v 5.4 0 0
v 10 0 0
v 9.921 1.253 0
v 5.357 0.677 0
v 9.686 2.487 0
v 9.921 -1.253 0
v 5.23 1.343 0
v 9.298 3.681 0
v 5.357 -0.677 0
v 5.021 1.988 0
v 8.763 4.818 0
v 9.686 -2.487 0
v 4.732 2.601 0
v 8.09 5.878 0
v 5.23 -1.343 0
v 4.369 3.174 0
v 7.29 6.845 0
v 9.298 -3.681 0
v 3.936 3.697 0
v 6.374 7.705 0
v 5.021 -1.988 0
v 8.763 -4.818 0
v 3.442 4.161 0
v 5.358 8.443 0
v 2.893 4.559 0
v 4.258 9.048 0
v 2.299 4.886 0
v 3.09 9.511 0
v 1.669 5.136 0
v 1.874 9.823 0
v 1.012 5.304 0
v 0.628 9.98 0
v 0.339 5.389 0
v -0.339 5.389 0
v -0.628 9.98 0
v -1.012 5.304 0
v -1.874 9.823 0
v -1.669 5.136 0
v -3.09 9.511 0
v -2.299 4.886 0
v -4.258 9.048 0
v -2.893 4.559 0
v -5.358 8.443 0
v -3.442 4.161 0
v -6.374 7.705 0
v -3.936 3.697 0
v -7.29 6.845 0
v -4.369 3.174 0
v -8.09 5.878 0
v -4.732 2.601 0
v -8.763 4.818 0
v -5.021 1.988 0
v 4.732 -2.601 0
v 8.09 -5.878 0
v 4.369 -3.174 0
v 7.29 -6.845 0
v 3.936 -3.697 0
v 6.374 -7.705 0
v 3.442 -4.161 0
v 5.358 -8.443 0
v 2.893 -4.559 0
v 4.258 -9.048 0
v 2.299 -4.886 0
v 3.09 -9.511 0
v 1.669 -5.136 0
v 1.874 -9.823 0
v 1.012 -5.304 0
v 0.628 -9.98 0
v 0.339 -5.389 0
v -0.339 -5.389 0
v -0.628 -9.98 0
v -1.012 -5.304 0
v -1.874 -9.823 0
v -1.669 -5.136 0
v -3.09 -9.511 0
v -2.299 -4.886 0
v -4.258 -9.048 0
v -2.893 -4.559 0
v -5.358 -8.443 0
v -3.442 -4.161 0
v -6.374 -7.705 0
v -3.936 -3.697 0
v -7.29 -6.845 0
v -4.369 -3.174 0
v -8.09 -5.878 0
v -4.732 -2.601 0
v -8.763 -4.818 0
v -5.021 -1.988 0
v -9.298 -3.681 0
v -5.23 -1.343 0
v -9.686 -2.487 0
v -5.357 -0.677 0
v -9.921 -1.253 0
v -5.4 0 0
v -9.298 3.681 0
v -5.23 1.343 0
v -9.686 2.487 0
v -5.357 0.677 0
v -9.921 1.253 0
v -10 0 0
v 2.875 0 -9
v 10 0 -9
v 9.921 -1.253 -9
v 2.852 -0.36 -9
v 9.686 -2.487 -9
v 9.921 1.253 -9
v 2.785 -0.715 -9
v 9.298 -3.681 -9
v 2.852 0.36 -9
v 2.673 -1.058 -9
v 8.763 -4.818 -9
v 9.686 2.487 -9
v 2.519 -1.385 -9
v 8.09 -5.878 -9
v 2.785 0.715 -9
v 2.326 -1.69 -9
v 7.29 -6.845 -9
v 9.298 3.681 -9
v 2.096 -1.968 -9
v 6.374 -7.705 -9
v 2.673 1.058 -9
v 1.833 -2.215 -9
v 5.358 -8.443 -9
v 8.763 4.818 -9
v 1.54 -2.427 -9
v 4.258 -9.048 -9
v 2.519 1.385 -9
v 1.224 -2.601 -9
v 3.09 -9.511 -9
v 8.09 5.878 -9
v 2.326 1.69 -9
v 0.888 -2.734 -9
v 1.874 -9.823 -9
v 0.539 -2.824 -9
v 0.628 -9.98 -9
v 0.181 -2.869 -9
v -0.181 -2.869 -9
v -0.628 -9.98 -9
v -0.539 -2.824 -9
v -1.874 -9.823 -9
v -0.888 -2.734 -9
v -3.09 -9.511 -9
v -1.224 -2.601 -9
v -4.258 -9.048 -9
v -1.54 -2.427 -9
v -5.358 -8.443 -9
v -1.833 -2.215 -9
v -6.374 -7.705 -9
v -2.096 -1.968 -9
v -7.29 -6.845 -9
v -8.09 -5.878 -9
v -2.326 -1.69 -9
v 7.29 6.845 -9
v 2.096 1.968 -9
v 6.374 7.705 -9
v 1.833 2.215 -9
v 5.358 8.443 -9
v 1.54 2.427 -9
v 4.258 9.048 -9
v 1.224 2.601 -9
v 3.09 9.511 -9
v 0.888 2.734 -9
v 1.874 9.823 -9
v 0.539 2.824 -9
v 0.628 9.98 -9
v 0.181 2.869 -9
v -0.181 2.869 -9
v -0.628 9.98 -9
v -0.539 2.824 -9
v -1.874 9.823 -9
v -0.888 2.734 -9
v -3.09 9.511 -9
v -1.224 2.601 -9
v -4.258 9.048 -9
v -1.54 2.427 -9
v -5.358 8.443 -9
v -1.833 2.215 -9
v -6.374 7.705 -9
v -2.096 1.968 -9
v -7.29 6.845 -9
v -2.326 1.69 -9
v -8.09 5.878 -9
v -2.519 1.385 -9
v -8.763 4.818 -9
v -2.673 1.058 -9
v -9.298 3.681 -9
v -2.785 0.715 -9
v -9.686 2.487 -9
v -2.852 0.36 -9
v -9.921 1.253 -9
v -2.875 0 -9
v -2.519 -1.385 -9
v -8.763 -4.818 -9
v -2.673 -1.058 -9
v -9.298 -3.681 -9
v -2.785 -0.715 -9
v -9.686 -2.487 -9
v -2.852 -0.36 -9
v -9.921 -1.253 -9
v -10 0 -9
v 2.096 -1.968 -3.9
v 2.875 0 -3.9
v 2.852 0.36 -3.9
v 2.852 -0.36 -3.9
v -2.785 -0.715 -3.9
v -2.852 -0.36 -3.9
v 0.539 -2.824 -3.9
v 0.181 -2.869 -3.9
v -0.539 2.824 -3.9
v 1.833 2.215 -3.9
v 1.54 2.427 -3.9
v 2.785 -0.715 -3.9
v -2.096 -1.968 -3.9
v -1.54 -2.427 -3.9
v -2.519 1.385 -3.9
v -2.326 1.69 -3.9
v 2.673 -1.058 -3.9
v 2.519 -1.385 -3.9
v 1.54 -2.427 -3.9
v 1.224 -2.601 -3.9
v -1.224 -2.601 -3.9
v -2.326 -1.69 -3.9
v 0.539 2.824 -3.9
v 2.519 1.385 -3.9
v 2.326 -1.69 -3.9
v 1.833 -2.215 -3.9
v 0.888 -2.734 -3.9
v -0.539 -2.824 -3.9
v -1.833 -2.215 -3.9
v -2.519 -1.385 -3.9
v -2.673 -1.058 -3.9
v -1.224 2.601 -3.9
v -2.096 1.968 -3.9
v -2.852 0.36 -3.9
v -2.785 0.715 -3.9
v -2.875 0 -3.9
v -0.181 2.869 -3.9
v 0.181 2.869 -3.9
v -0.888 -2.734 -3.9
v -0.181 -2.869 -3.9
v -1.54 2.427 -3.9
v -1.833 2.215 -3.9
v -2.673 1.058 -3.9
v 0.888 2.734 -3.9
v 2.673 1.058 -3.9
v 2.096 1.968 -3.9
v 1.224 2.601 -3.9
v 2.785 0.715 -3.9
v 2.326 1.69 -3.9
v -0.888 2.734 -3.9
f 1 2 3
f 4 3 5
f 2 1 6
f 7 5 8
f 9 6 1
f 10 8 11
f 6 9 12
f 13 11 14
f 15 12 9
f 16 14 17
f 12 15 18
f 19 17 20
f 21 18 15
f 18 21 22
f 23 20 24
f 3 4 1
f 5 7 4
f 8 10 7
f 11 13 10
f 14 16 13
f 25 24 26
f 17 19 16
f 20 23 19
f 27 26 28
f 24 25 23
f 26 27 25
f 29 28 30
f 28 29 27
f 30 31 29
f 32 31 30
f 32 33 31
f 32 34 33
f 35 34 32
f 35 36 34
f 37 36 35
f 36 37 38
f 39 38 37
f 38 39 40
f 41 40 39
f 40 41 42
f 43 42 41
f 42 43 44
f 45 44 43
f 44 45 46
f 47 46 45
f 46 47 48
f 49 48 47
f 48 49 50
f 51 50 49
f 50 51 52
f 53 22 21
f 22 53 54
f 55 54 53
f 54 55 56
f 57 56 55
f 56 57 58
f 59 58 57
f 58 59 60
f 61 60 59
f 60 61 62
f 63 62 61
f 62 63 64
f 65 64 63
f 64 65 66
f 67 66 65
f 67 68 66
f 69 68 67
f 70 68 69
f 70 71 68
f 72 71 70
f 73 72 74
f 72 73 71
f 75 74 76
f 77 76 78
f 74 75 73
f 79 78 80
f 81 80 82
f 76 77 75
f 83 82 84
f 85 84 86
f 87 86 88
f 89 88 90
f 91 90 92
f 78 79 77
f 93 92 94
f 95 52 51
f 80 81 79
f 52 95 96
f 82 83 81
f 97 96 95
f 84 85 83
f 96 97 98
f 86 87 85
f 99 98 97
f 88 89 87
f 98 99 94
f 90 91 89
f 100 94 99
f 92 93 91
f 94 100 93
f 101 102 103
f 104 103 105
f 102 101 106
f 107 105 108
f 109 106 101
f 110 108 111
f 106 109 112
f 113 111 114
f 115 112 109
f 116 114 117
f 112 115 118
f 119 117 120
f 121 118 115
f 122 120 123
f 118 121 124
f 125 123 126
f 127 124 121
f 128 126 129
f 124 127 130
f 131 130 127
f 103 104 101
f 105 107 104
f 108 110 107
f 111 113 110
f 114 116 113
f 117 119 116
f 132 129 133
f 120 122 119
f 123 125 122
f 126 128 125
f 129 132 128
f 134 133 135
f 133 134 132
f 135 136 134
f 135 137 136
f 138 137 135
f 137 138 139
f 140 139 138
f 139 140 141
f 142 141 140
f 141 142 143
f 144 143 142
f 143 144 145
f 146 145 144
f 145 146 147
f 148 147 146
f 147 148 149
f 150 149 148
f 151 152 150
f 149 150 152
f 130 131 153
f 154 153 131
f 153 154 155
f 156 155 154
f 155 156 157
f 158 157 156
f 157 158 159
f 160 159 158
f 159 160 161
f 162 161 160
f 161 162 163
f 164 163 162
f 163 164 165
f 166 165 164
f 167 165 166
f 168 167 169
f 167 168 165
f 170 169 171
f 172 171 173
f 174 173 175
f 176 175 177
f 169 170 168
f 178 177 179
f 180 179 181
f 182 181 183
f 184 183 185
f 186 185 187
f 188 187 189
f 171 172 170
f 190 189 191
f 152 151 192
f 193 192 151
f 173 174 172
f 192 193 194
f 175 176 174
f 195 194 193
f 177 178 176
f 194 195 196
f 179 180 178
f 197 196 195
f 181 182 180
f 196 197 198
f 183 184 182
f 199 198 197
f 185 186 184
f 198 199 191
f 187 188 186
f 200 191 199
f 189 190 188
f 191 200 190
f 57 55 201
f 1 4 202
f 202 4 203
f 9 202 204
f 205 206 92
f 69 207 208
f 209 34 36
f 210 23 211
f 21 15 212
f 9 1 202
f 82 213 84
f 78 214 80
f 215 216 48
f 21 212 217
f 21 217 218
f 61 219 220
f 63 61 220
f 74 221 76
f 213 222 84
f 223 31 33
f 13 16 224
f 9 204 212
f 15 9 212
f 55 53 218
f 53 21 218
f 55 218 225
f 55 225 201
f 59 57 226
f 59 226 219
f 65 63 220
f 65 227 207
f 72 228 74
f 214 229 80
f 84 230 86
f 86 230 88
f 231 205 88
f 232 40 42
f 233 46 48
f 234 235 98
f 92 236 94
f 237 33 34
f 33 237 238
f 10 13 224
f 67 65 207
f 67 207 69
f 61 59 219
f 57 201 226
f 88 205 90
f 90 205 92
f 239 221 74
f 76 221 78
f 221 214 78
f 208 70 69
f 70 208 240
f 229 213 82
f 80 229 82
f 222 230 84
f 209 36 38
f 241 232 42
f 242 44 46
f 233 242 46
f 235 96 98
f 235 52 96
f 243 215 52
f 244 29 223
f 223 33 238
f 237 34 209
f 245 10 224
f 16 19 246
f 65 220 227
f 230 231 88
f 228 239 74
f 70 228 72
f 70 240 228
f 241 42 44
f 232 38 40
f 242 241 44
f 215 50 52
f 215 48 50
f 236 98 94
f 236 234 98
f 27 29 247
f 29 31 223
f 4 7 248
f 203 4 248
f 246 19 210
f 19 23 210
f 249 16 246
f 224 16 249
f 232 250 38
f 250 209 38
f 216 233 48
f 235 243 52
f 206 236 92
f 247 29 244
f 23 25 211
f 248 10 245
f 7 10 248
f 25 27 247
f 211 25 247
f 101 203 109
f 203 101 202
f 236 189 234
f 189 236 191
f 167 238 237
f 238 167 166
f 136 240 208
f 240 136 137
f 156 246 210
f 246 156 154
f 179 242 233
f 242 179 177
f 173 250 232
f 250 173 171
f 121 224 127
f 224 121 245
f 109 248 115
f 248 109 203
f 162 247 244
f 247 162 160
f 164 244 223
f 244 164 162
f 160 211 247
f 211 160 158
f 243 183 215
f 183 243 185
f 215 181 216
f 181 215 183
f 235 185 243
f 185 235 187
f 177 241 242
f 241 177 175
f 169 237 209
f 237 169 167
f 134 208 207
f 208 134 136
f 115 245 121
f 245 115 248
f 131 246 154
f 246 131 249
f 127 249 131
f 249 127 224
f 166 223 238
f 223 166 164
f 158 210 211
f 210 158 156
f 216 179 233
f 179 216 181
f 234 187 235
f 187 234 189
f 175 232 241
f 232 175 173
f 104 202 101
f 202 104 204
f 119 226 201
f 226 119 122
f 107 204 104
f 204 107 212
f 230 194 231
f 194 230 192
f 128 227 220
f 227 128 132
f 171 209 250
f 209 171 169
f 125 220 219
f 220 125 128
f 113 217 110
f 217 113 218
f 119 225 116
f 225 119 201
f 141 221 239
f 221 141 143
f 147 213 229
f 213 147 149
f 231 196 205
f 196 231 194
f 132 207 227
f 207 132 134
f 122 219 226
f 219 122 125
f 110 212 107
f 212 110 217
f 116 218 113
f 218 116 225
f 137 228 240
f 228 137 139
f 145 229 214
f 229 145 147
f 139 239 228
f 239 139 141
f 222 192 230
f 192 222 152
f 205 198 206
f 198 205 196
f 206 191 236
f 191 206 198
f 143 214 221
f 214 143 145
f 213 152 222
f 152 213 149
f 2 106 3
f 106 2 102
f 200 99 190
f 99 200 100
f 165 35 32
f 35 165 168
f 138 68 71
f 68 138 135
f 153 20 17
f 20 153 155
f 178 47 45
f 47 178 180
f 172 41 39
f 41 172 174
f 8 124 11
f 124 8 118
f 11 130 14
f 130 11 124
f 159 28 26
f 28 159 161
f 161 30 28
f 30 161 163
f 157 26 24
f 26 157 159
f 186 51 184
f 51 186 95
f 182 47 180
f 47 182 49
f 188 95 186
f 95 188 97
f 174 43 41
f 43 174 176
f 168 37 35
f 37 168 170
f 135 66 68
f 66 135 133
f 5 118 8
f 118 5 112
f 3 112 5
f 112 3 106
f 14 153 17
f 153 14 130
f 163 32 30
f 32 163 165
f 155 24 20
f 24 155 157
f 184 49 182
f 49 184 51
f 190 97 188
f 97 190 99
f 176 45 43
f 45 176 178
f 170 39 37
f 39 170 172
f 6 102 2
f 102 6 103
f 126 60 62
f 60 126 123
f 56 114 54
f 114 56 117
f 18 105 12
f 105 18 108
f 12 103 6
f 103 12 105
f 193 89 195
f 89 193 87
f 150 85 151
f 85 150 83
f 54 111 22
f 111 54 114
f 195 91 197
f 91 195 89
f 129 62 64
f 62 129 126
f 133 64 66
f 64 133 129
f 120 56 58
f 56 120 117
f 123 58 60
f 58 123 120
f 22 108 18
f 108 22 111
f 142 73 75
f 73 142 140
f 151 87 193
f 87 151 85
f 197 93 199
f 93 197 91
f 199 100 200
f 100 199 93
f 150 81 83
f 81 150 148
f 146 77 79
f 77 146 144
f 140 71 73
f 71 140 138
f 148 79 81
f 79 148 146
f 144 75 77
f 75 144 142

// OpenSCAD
$fn = 50;


difference() {
	union() {
		translate(v = [0, 0, -9.0000000000]) {
			cylinder(h = 9, r = 10.0000000000);
		}
		cylinder(h = 0, r = 20.0000000000);
	}
	union() {
		translate(v = [0, 0, 0]) {
			rotate(a = [0, 0, 0]) {
				difference() {
					union() {
						#translate(v = [0, 0, -9.0000000000]) {
							cylinder(h = 9, r = 2.6000000000);
						}
						#translate(v = [0, 0, -3.9000000000]) {
							cylinder(h = 3.9000000000, r = 10.0000000000, r1 = 2.8750000000, r2 = 5.4000000000);
						}
						#translate(v = [0, 0, -9.0000000000]) {
							cylinder(h = 9, r = 2.8750000000);
						}
						#translate(v = [0, 0, -9.0000000000]) {
							cylinder(h = 9, r = 2.6000000000);
						}
					}
					union();
				}
			}
		}
	}
}
